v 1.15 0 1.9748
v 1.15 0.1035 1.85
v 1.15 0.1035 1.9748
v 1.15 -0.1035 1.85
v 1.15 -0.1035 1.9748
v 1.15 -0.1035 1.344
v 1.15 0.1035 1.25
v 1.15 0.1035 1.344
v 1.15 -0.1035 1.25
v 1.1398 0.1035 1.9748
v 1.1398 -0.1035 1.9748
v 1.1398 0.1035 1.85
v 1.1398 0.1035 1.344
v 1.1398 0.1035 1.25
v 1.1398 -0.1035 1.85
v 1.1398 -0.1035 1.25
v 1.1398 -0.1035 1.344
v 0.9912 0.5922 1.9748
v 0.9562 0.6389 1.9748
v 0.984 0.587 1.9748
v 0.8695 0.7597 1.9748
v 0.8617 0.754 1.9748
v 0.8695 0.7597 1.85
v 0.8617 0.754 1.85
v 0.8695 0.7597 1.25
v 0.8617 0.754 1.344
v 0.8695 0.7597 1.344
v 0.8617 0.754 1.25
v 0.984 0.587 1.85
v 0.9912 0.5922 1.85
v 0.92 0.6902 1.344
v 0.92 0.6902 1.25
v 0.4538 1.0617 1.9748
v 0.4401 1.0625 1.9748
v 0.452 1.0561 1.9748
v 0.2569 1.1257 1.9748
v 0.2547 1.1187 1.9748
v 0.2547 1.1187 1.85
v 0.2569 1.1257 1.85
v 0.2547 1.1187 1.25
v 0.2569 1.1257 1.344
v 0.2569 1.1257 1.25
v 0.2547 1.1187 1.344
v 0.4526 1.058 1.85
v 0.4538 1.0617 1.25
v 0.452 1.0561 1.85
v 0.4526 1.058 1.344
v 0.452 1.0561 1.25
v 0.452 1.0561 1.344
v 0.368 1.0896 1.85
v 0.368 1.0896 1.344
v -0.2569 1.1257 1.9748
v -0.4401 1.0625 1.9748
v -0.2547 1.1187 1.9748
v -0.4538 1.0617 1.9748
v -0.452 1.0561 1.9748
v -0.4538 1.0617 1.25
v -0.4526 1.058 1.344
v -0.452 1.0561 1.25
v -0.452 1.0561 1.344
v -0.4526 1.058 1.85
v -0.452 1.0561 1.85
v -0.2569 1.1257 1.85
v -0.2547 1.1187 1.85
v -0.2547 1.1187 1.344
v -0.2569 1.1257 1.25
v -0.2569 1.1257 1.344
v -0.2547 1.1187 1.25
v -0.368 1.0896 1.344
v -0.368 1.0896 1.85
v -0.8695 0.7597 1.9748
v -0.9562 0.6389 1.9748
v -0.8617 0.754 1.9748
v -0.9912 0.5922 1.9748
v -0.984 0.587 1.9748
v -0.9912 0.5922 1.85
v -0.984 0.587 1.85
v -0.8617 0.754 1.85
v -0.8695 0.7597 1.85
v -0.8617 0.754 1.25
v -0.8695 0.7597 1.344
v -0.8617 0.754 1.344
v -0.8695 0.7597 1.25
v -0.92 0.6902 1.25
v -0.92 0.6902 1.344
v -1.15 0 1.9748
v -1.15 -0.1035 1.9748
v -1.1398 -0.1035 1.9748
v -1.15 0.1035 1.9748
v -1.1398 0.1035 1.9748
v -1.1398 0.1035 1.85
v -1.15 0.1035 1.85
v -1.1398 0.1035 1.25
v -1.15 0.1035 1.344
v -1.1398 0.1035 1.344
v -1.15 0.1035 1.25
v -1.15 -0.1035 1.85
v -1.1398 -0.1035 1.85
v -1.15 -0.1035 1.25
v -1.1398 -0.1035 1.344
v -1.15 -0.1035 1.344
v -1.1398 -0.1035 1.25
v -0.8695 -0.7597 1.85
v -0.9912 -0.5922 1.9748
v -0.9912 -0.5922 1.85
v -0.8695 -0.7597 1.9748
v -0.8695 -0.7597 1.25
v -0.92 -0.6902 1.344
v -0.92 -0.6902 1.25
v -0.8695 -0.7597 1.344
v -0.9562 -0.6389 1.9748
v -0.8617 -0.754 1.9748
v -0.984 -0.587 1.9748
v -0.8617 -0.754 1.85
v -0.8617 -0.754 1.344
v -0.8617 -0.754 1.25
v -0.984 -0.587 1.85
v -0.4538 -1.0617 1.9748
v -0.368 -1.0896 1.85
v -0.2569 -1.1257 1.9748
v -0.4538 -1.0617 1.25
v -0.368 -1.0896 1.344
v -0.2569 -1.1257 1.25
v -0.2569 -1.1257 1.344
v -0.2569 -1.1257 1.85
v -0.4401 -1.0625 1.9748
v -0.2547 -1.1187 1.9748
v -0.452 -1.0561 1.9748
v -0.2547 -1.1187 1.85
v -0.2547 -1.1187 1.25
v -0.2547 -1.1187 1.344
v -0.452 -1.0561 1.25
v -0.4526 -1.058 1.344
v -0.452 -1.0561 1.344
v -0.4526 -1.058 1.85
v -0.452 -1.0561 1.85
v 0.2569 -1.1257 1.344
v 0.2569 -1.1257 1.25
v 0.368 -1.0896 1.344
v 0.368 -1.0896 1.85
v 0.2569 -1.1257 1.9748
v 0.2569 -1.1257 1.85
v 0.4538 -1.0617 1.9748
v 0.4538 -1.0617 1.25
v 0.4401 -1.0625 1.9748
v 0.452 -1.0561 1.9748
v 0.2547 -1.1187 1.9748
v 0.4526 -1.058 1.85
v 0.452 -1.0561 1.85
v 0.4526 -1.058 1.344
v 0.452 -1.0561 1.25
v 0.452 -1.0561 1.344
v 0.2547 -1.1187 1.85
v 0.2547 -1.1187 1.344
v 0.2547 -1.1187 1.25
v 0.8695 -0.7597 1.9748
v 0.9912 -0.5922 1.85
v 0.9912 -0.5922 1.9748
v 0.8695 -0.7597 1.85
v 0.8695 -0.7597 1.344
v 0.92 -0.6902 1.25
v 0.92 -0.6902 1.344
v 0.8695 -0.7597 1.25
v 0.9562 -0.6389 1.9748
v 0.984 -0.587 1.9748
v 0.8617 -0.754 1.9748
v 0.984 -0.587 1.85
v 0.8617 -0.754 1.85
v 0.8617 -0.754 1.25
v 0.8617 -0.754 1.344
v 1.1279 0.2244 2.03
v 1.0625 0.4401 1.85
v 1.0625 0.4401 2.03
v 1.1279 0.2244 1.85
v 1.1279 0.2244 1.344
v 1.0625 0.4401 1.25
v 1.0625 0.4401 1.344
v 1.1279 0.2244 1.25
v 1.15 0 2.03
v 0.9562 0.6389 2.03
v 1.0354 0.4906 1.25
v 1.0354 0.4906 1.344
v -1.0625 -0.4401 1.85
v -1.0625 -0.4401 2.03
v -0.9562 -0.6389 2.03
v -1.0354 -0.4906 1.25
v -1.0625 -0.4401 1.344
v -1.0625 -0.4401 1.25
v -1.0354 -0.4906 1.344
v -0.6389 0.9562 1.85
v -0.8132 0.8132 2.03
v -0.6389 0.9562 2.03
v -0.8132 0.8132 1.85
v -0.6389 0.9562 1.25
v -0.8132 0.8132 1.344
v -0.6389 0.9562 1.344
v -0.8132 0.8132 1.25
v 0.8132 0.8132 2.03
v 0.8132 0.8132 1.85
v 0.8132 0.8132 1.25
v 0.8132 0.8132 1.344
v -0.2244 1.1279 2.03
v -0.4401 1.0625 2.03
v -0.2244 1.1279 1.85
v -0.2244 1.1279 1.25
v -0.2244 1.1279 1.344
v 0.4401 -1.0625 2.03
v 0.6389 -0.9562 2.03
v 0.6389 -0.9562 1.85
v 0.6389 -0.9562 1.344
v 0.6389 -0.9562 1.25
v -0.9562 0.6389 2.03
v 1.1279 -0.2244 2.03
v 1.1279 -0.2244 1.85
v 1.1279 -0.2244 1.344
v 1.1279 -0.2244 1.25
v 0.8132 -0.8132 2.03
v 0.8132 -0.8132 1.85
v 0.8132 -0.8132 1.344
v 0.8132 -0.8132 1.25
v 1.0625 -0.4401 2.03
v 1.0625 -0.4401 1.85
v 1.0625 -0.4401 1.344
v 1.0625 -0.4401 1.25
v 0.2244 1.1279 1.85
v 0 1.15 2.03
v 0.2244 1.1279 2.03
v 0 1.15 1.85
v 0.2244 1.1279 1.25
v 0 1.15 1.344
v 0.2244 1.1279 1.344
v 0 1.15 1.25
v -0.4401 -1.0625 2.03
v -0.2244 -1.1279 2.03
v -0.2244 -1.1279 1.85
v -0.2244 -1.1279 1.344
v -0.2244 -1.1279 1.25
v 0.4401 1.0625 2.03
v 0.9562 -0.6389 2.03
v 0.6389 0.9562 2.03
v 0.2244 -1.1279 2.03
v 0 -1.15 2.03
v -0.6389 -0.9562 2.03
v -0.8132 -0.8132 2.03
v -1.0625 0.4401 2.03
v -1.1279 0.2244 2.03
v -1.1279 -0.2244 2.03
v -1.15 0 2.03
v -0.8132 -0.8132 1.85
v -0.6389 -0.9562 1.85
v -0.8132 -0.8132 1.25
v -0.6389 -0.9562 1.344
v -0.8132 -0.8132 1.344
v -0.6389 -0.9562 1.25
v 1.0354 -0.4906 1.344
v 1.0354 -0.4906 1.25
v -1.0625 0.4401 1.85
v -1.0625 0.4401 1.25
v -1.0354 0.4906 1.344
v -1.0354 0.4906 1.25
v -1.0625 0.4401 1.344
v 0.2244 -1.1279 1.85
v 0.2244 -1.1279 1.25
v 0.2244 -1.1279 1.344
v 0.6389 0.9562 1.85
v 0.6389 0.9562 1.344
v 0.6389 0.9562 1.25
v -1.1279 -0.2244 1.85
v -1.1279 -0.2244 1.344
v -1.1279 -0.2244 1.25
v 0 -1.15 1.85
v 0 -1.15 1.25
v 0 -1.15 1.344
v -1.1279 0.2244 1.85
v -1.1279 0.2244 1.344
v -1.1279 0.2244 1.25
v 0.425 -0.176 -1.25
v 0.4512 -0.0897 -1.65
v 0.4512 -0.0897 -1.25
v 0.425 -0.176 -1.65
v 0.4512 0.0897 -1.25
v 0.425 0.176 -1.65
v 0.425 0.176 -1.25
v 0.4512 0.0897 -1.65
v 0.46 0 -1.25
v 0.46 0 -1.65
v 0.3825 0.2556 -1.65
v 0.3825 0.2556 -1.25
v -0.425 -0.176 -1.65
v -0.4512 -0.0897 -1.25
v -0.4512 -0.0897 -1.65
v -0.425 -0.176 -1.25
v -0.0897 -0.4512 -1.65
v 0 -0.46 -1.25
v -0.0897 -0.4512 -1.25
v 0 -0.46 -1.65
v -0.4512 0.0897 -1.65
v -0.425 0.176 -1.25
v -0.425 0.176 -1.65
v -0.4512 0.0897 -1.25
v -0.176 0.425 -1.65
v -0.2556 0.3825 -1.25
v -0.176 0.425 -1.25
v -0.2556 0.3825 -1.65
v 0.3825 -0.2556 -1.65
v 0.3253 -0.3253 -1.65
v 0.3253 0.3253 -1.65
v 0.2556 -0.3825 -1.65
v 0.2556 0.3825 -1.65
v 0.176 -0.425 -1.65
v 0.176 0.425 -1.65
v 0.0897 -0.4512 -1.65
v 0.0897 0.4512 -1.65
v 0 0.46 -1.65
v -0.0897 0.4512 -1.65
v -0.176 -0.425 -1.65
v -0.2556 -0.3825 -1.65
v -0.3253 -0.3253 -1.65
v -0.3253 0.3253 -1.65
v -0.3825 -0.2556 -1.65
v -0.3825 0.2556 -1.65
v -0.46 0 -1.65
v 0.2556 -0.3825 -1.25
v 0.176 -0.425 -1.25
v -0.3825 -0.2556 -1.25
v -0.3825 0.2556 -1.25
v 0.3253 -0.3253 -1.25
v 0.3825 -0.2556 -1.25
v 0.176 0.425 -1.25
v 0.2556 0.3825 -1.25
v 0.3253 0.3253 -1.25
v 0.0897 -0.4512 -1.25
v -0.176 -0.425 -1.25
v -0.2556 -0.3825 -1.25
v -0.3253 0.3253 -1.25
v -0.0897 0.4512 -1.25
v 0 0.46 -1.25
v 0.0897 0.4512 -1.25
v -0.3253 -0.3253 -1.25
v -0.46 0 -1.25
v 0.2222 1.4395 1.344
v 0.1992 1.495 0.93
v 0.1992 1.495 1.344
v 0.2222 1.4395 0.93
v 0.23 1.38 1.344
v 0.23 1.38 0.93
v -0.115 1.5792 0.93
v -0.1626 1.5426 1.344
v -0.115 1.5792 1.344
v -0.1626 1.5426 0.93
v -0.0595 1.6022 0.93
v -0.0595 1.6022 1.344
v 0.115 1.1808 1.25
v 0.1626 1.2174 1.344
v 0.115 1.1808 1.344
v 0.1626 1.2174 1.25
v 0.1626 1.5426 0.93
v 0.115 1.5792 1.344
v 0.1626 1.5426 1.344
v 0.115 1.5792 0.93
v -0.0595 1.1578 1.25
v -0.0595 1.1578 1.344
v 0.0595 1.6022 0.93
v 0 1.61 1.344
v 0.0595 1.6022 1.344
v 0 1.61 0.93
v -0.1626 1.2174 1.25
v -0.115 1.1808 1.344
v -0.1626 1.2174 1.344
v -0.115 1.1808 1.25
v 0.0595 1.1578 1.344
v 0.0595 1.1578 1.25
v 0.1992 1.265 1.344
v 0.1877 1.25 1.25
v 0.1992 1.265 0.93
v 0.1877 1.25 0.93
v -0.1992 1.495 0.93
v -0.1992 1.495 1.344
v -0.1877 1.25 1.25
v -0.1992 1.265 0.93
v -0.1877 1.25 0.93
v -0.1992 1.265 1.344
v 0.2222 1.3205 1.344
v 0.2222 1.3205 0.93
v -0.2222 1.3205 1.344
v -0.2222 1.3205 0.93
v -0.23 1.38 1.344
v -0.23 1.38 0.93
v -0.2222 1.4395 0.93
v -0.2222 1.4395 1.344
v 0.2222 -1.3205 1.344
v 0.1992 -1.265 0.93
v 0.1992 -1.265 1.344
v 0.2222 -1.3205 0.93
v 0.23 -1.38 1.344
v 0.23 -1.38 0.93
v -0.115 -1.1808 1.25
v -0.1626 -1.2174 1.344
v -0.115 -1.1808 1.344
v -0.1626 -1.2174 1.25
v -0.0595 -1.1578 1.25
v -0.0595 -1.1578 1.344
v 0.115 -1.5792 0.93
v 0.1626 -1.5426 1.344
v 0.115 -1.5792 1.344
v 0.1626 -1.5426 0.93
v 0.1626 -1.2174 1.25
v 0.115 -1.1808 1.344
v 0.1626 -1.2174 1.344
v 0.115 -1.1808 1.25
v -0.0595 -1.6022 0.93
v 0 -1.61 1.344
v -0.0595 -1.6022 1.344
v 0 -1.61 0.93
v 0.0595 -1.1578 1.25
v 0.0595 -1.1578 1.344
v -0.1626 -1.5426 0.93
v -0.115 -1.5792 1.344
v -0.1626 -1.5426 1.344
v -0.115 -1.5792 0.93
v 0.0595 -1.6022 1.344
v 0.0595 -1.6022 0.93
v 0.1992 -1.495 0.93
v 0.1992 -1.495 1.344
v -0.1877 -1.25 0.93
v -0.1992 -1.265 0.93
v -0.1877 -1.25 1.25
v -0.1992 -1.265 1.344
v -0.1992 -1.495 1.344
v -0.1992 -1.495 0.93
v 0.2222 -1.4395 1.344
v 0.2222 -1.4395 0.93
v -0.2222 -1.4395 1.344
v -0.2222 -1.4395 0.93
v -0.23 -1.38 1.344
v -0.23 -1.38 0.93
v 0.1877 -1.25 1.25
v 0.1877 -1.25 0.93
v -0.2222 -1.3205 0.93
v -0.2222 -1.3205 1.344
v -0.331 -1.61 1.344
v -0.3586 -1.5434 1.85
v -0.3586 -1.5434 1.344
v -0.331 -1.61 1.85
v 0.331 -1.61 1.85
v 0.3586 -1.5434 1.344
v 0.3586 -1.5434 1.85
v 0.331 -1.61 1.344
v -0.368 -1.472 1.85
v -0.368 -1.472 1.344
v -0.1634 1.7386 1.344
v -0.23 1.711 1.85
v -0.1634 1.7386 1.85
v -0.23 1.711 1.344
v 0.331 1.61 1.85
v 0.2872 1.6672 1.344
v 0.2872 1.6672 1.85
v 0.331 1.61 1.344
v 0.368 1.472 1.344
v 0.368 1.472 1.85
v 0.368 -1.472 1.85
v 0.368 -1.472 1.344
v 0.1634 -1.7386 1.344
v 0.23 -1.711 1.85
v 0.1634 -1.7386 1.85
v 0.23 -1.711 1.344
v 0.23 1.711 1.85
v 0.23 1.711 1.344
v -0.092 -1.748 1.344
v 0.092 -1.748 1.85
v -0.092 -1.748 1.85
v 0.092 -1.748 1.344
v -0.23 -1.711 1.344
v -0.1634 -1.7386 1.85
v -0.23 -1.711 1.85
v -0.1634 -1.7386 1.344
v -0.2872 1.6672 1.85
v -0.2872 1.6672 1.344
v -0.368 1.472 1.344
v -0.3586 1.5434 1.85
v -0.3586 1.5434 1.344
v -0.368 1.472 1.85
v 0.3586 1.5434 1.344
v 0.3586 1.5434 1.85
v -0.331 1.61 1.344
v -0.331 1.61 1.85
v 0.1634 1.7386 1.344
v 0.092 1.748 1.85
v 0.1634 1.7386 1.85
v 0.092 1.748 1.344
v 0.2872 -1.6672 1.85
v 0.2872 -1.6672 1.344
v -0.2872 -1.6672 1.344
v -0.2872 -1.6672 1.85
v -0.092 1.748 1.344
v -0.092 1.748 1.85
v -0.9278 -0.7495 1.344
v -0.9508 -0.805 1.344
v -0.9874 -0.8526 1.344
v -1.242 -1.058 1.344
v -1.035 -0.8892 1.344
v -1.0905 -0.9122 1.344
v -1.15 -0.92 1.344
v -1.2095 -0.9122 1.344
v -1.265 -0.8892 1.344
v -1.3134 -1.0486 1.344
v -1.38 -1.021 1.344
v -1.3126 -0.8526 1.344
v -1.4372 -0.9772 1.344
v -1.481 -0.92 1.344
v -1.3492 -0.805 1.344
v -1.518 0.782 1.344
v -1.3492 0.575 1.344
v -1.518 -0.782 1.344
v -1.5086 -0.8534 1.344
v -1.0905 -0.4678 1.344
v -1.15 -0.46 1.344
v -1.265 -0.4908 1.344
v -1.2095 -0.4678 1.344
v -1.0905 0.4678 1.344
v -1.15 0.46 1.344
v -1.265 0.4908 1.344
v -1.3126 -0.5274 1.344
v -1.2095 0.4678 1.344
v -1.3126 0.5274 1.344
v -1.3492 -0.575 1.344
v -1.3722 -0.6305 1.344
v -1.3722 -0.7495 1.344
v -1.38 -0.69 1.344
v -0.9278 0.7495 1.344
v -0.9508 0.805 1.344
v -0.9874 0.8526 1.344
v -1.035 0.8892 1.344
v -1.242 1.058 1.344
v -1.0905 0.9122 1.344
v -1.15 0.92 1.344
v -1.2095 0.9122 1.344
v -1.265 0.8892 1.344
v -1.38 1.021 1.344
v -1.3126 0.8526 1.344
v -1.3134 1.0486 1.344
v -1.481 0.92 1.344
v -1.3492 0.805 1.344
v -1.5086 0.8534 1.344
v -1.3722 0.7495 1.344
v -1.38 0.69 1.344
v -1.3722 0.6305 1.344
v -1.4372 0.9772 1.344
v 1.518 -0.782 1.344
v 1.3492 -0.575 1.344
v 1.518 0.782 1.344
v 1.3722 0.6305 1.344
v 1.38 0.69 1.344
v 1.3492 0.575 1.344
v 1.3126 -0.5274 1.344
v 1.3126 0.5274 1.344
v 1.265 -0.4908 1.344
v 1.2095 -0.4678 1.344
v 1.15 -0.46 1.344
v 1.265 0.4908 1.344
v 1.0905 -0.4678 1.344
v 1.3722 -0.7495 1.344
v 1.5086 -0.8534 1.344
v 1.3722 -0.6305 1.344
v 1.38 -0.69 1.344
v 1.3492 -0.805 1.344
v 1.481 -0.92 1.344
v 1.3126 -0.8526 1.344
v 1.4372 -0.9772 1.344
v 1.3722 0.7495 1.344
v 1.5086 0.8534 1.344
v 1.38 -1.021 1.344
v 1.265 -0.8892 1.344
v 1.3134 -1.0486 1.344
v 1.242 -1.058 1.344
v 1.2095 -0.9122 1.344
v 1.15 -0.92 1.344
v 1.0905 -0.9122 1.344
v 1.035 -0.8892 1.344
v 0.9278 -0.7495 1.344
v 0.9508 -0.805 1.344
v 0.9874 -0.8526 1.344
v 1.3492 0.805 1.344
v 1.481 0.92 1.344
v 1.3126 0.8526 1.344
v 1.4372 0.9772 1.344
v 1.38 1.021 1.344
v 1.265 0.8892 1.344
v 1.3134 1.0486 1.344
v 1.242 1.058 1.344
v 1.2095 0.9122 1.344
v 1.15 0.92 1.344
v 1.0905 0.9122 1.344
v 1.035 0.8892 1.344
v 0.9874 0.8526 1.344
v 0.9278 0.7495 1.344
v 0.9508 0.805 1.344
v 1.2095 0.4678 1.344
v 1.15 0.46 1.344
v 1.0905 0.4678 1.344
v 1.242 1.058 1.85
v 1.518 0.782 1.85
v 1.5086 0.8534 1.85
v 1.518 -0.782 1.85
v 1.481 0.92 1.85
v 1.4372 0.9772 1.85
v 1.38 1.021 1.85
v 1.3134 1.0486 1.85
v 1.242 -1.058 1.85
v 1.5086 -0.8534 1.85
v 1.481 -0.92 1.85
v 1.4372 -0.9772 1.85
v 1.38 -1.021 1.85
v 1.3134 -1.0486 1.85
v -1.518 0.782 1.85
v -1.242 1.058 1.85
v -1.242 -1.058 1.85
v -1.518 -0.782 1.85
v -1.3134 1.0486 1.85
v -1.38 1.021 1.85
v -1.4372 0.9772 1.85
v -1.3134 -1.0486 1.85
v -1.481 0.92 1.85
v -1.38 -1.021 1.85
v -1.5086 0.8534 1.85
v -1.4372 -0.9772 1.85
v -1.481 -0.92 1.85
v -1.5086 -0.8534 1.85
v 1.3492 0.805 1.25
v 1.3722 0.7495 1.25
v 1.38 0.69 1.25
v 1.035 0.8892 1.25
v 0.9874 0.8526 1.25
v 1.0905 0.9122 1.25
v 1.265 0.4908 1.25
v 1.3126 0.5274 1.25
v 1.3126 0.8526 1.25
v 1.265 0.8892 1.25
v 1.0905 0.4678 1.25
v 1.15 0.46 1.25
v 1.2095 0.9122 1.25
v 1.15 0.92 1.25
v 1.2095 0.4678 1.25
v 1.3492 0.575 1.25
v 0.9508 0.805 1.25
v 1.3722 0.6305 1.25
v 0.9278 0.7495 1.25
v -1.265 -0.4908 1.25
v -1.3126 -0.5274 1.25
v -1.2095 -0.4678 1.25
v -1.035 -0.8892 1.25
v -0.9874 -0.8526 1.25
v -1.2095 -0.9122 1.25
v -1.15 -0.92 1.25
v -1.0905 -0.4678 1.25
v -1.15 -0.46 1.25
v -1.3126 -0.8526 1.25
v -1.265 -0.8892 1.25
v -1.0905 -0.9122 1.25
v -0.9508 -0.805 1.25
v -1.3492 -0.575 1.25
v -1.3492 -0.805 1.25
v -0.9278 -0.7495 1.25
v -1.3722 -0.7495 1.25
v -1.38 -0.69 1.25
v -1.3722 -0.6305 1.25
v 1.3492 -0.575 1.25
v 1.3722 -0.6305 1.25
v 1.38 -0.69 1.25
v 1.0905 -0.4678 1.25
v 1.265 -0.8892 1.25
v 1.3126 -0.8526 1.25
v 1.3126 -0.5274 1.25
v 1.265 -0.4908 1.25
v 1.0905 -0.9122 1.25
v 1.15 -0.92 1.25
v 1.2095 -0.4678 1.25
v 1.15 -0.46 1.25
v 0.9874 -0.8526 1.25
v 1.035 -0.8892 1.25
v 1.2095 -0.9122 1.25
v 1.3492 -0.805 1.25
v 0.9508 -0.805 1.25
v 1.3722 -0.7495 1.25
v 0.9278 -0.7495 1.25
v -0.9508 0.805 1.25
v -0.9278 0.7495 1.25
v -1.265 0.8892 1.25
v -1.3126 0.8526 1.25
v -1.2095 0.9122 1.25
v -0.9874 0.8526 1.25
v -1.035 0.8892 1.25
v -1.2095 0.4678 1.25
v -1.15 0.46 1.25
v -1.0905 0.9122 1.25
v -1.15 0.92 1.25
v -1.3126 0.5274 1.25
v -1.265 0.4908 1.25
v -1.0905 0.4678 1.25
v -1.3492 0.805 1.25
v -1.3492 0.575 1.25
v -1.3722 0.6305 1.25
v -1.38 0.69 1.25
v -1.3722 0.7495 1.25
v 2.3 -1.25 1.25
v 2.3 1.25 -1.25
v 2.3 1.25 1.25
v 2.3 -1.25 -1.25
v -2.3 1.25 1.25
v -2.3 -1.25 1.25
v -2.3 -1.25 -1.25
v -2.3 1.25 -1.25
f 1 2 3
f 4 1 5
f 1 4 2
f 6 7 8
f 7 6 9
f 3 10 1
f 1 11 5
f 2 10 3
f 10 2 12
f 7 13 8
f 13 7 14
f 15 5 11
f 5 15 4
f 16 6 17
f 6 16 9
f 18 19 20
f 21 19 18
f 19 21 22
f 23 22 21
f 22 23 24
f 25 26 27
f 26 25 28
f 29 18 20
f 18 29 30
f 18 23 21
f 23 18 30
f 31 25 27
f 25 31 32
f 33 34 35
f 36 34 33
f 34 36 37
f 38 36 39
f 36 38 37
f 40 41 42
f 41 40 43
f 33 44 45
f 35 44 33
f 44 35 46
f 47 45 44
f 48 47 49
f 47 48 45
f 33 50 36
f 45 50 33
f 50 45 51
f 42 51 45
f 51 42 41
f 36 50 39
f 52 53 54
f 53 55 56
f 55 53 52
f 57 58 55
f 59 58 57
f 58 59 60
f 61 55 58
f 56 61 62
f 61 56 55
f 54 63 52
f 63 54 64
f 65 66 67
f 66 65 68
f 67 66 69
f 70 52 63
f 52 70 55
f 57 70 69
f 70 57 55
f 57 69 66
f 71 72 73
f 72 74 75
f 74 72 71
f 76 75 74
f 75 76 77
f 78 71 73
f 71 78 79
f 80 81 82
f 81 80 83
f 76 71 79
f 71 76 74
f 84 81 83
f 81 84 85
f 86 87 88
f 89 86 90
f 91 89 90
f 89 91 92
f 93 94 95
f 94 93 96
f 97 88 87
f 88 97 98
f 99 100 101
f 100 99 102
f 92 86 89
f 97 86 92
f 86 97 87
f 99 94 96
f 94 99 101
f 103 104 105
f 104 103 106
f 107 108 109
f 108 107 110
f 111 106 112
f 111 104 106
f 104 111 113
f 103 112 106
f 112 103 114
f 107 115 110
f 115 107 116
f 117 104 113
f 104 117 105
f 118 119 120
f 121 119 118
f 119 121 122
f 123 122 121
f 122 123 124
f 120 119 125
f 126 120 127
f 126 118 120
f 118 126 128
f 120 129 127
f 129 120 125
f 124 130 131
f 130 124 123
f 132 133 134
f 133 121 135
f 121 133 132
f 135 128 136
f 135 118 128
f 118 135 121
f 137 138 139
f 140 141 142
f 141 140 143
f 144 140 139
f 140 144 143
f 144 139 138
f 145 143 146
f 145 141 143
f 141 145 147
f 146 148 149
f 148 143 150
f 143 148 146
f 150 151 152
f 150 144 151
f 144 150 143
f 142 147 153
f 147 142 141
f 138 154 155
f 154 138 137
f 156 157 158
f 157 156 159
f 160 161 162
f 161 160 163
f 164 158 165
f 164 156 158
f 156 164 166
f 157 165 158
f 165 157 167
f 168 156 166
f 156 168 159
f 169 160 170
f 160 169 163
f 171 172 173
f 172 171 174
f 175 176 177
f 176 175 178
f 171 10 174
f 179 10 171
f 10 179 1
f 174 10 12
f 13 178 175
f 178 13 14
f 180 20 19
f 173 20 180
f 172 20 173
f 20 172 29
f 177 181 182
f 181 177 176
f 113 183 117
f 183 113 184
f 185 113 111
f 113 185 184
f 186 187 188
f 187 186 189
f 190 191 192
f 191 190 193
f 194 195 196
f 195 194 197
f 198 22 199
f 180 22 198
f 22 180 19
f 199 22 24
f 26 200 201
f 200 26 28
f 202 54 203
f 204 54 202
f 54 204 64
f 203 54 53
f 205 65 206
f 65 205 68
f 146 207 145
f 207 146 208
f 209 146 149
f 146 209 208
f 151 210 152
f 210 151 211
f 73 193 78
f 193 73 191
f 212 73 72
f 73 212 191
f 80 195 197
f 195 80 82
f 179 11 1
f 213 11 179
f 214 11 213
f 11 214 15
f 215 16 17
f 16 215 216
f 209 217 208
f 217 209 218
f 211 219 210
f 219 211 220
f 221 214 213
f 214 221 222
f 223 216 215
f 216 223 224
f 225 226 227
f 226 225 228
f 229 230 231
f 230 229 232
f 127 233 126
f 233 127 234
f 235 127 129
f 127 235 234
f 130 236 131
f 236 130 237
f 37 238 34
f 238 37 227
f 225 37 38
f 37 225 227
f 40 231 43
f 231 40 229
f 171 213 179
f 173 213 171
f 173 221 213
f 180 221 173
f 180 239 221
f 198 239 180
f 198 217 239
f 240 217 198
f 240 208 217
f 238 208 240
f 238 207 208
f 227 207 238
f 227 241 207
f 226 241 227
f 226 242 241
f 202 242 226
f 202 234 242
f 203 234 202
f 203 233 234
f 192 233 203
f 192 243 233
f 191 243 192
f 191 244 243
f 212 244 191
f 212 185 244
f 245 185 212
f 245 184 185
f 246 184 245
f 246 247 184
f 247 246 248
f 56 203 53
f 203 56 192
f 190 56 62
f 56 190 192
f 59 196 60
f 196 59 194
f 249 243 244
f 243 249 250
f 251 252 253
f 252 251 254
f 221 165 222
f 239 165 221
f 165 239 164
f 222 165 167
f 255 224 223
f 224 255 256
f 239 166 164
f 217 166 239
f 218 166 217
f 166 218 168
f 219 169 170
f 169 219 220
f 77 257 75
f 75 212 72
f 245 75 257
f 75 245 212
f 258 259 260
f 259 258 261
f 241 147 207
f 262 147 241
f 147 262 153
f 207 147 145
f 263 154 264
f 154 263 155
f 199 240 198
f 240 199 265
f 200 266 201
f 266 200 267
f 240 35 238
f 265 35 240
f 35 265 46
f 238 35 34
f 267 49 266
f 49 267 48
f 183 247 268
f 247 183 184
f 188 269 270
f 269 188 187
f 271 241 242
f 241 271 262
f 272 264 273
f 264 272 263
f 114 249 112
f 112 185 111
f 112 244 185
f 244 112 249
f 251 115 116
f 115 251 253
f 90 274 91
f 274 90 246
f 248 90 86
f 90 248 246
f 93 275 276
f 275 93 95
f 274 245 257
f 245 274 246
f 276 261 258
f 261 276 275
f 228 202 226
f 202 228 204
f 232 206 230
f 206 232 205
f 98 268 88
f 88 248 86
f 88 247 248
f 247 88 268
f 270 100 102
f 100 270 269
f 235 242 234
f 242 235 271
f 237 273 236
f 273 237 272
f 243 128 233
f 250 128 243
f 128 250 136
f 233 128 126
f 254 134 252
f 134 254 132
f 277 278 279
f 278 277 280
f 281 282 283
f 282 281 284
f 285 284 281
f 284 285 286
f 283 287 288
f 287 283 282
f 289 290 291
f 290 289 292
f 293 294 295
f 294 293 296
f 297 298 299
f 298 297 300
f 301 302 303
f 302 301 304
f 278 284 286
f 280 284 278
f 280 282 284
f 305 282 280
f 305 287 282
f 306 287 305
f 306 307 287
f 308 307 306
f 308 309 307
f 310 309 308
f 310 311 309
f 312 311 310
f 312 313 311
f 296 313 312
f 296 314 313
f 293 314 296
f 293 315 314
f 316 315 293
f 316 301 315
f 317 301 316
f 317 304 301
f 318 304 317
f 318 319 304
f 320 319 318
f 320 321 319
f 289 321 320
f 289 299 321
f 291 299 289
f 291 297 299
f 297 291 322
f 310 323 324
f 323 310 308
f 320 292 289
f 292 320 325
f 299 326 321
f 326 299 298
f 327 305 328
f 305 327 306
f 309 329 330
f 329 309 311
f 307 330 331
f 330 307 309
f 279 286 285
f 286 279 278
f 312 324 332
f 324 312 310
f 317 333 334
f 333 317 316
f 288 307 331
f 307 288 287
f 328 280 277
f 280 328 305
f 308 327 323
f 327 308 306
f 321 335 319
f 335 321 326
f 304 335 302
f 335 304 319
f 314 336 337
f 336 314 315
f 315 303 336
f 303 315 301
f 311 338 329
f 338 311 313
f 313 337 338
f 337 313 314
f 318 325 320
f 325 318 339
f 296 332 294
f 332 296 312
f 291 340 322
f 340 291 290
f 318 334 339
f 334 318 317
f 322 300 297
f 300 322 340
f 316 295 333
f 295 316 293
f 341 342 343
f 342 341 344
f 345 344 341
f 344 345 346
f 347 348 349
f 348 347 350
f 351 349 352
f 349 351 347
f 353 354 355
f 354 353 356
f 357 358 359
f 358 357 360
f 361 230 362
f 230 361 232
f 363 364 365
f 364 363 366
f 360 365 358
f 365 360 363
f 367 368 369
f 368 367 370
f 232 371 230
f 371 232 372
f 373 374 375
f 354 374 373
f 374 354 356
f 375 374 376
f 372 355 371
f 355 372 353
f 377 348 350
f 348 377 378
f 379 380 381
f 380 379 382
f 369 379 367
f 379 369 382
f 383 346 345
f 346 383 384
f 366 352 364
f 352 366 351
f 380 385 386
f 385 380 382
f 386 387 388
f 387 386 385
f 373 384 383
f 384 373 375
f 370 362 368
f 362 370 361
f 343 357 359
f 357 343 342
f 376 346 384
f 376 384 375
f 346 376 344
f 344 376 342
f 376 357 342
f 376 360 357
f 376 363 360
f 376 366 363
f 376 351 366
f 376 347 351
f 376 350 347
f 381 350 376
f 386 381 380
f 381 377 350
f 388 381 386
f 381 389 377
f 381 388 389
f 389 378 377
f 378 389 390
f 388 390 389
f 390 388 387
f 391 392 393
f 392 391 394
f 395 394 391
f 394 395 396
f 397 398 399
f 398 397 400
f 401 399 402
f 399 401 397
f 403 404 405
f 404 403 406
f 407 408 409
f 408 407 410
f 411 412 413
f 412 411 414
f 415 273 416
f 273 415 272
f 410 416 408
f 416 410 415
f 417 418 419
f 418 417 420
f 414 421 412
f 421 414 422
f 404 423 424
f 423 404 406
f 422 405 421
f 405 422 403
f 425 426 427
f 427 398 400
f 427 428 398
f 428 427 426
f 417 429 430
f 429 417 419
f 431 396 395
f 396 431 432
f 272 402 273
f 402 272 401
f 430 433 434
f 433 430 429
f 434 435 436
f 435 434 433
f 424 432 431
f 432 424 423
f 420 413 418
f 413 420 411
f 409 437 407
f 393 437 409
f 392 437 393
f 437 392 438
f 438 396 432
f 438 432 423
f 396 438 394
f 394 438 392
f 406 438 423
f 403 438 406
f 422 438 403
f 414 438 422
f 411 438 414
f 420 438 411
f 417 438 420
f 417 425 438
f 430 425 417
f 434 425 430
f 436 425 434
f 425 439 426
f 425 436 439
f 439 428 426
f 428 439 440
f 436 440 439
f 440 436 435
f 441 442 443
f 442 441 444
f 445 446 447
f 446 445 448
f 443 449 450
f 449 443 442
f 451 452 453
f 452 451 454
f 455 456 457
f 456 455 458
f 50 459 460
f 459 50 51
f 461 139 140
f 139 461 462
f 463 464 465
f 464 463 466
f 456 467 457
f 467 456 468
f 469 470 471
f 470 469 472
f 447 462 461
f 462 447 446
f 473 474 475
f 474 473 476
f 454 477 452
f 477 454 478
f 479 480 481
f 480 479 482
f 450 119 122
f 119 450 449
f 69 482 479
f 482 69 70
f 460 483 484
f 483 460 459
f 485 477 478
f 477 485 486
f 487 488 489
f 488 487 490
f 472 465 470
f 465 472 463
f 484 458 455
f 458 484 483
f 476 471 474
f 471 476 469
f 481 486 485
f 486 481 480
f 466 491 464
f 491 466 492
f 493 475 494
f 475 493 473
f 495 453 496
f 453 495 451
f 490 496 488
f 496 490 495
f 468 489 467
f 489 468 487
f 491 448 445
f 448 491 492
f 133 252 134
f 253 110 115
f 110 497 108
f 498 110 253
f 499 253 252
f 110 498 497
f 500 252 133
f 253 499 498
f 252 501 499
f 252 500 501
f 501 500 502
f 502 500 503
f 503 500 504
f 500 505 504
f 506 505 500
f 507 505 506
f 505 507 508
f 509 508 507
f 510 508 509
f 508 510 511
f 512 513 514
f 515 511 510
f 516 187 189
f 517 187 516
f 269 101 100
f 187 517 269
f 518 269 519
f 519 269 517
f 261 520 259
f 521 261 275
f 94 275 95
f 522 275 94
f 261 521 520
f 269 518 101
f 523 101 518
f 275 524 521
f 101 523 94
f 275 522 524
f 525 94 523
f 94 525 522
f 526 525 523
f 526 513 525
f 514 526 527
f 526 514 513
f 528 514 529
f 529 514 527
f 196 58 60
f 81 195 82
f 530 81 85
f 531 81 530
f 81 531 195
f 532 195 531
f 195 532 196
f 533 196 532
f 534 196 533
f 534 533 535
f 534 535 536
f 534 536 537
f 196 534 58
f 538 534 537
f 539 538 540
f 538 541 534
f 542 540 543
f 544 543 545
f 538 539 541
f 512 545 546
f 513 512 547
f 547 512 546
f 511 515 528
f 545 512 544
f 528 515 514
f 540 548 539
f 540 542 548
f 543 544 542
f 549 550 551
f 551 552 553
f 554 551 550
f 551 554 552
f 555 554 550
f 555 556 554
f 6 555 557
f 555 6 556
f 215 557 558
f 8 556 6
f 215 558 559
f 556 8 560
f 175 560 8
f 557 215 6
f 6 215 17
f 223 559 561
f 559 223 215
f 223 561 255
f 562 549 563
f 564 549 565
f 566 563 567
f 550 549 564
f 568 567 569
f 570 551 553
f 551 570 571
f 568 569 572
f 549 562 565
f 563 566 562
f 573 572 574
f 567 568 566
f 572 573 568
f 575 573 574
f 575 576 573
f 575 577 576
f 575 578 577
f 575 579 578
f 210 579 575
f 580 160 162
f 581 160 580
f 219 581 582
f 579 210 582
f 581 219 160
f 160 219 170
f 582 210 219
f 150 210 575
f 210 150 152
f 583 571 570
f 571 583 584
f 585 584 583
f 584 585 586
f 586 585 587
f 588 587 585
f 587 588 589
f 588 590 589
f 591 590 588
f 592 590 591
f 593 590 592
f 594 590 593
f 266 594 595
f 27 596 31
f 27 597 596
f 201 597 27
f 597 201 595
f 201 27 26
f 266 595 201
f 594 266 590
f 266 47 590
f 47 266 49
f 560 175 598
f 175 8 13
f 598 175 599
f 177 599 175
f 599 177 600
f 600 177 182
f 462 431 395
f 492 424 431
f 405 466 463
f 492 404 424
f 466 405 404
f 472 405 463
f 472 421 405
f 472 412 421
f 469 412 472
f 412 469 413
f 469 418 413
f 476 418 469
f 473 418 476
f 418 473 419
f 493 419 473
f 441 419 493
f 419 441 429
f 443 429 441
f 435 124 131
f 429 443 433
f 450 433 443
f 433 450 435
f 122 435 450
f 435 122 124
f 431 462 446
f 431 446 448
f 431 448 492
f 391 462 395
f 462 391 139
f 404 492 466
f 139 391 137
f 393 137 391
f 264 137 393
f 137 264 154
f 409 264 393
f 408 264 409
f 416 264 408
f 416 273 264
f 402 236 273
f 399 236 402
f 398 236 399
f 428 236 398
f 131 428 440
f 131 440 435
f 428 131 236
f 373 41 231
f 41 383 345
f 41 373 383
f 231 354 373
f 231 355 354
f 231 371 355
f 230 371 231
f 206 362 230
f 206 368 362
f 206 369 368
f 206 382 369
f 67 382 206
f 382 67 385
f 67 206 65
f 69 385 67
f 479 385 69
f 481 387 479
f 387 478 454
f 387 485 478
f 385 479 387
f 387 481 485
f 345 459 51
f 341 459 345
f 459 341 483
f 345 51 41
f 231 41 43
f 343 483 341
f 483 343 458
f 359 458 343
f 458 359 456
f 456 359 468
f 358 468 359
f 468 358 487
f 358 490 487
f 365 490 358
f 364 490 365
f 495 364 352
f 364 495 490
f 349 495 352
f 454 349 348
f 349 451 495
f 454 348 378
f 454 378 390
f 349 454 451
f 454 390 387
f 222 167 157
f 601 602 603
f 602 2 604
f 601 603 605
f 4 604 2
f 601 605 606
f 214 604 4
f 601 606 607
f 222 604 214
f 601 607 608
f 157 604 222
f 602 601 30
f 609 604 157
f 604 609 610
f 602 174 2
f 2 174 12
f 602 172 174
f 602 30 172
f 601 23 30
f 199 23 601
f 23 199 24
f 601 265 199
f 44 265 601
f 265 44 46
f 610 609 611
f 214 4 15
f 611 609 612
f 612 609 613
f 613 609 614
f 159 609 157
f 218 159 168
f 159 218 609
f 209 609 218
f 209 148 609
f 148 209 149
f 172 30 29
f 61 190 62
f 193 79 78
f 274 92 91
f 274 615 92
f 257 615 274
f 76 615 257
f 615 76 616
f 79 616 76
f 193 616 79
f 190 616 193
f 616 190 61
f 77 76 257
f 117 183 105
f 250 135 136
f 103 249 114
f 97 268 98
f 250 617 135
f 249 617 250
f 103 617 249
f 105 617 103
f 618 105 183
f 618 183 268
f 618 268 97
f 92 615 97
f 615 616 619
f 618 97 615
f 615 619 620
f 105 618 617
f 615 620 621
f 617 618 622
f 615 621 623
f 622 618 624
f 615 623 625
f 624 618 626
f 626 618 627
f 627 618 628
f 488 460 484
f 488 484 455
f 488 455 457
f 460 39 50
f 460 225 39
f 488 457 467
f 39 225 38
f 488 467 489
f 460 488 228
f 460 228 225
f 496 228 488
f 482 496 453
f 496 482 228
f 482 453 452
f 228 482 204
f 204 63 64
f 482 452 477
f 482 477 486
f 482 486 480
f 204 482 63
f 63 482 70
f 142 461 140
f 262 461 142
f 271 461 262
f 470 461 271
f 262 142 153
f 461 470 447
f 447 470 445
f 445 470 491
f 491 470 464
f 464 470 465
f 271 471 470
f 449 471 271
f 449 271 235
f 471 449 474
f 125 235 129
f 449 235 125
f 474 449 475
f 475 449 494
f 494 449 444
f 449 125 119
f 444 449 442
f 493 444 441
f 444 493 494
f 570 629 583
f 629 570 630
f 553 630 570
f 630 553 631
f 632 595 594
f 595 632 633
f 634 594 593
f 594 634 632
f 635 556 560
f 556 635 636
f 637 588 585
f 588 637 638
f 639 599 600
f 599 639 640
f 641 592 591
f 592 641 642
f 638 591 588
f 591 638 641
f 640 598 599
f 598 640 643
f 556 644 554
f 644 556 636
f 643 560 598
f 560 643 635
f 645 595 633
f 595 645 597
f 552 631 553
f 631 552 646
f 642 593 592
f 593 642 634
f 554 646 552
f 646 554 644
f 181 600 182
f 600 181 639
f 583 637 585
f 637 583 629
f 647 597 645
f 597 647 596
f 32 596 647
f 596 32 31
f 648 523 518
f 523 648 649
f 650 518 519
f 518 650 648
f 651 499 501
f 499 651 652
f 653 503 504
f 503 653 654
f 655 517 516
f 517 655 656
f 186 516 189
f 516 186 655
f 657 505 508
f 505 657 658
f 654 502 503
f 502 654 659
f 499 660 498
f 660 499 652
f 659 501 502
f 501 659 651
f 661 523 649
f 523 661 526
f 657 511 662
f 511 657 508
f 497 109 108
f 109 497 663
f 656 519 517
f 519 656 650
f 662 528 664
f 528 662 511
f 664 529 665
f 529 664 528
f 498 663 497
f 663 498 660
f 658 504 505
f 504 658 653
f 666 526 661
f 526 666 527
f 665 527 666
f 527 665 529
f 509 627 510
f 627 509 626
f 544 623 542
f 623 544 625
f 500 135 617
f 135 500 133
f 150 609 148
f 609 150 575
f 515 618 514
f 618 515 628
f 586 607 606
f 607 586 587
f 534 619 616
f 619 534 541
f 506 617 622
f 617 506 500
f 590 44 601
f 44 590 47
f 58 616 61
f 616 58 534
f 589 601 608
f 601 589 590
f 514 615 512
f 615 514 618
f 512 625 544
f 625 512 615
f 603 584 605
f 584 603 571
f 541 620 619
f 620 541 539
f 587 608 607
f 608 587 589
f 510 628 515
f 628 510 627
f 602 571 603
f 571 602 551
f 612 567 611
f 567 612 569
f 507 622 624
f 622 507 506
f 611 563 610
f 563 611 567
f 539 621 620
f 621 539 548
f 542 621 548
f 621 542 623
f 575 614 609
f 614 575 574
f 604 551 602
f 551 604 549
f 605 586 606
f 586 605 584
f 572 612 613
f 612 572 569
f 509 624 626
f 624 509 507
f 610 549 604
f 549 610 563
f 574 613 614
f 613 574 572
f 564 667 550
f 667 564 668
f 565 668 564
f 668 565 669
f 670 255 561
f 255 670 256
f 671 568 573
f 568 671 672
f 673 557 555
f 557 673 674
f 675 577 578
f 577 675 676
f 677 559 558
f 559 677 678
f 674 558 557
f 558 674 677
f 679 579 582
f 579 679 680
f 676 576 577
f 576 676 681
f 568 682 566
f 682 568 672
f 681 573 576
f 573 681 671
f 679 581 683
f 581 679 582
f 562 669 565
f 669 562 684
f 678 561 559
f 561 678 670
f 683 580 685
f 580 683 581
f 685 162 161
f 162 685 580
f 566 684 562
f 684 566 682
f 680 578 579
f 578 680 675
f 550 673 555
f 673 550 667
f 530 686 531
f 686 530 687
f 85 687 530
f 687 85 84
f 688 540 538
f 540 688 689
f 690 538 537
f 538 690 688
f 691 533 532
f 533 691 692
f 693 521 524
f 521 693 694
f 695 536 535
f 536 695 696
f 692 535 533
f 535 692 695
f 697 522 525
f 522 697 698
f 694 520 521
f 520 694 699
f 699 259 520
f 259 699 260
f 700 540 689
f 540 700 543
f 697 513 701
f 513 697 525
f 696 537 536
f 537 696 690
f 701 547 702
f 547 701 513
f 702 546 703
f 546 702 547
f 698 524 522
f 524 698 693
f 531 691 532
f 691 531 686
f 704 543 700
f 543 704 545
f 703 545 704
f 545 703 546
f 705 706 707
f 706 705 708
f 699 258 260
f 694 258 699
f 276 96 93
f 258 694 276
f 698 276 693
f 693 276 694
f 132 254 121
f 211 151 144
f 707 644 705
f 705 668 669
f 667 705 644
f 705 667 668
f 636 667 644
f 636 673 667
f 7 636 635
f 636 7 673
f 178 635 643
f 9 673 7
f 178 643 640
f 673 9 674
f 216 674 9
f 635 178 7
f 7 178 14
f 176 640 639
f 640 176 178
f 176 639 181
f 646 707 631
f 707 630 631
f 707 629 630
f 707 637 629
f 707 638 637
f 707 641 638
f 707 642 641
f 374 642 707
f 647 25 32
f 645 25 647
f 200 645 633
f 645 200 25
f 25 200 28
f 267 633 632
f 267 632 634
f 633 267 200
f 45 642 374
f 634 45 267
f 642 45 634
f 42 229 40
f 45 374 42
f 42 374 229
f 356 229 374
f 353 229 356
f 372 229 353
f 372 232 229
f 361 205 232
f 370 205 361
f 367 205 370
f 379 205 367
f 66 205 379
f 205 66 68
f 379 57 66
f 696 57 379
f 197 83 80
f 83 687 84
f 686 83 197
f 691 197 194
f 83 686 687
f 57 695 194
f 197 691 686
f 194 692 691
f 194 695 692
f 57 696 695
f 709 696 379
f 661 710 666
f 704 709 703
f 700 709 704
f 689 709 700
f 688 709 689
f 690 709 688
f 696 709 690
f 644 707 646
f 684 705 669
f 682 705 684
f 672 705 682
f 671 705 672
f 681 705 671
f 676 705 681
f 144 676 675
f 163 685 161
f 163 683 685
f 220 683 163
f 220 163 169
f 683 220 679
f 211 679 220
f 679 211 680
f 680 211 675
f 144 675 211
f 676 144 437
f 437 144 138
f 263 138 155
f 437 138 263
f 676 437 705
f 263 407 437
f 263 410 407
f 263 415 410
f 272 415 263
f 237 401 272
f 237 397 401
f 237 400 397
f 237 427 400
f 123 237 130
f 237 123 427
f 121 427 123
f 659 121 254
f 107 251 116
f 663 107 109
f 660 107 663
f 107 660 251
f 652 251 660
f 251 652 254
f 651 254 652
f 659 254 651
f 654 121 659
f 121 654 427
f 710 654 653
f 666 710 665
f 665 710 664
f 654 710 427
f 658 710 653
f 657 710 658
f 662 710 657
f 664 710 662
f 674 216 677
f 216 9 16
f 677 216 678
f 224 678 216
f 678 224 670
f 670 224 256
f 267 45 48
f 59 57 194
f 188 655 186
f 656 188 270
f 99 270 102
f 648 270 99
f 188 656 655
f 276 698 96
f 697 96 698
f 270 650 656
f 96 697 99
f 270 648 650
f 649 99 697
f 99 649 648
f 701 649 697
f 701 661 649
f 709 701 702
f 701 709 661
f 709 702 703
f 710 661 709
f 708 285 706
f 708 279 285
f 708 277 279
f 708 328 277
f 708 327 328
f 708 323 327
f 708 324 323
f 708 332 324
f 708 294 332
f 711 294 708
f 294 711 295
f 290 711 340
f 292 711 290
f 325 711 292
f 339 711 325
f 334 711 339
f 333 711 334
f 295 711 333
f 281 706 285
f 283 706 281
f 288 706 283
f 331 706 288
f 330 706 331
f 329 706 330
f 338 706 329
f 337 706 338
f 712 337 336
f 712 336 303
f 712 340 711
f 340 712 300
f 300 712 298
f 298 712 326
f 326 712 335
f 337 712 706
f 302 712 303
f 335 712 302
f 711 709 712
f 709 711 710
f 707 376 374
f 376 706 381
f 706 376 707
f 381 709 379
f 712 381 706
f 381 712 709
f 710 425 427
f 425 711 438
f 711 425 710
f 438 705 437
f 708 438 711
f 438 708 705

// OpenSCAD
// Parameters (mm)
primary_dimension = 4.6; //[2.3:9.2:0.1]
body_width        = 4.6; //[2.3:9.2:0.1]
body_thickness    = 2.5; //[1.25:5:0.1]
body_length       = 2.5; //[1.25:5:0.1]
overlap           = 0.6; //[0.3:1.2:0.1]

knob_radius  = 1.15; //[0.6:2.3:0.05]
knob_height  = 1.38; //[0.7:2.8:0.05]
screw_radius = 0.46; //[0.25:0.9:0.01]
screw_length = 3.68; //[1.8:7.4:0.1]

marker_radius = 0.23; //[0.12:0.46:0.01]
marker_height = 0.92; //[0.4:1.8:0.02]
marker_pitch  = 1.38; //[0.7:2.8:0.02]

// Global quality
$fn=32;

// ---------- Helpers ----------
module hex_prism(flat_d=2, h=1, center=false) {
  // flat_d is across flats
  r = flat_d / (2*cos(30));
  cylinder(r=r, h=h, center=center, $fn=6);
}

module rounded_rect_2d(w, h, r) {
  rr = min(r, min(w, h)/2);
  hull() {
    translate([ w/2-rr,  h/2-rr]) circle(r=rr, $fn=24);
    translate([-w/2+rr,  h/2-rr]) circle(r=rr, $fn=24);
    translate([ w/2-rr, -h/2+rr]) circle(r=rr, $fn=24);
    translate([-w/2+rr, -h/2+rr]) circle(r=rr, $fn=24);
  }
}

module marker_pin(r=marker_radius, h=marker_height) {
  // Small "hole position marker" with a tiny head so it reads as a marker, not just a cylinder
  union() {
    cylinder(r=r, h=h, center=true, $fn=24);
    translate([0,0,h/2 - min(0.18, h*0.25)]) cylinder(r=r*1.35, h=min(0.18, h*0.25), center=false, $fn=24);
  }
}

// ---------- Base shapes from plan ----------
module component_body() {
  // Encapsulated body
  color([0.15, 0.15, 0.17])  // black plastic
    cube([body_width, body_length, body_thickness], center=true);
}

// [MANDATORY] Screw Knob Assembly (detailed)
module screw_knob_assembly() {
  // Positions from plan
  knob_z  = body_thickness/2 + knob_height/2 - overlap;
  screw_z = body_thickness/2 + knob_height - overlap - screw_length/2;

  // Detail parameters (kept minimal but recognizable)
  knob_r = knob_radius;
  knob_h = knob_height;

  // Knurling ribs
  rib_count = 10;
  rib_w = max(0.18, knob_r*0.18);
  rib_d = max(0.18, knob_r*0.22);

  // Screw details
  shank_r = screw_radius;
  head_h  = max(0.35, shank_r*1.2);
  head_r  = max(shank_r*1.9, shank_r + 0.35);
  tip_h   = max(0.35, shank_r*1.2);

  color([0.2, 0.2, 0.22])  // dark knob
  union() {
    // Knob body with simple knurl ribs
    translate([0,0,knob_z])
    union() {
      // main knob cylinder
      cylinder(r=knob_r, h=knob_h, center=true, $fn=32);

      // top chamfer ring (visual)
      translate([0,0,knob_h/2 - min(0.25, knob_h*0.25)])
        cylinder(r1=knob_r, r2=knob_r*0.88, h=min(0.25, knob_h*0.25), center=false, $fn=32);

      // knurl ribs around perimeter
      for (i=[0:rib_count-1]) {
        rotate([0,0,i*360/rib_count])
          translate([knob_r - rib_d/2, 0, 0])
            cube([rib_d, rib_w, knob_h*0.92], center=true);
      }

      // central boss (suggests insert)
      cylinder(r=knob_r*0.35, h=knob_h*0.75, center=true, $fn=32);
    }

    // Screw: metal shank + head + tip (passes through body)
    color([0.75, 0.75, 0.77])  // silver metal
    translate([0,0,screw_z])
    union() {
      // shank
      cylinder(r=shank_r, h=screw_length, center=true, $fn=32);

      // head near top (inside knob region)
      translate([0,0,screw_length/2 - head_h])
      difference() {
        cylinder(r=head_r, h=head_h, center=false, $fn=32);
        // simple slot
        translate([0,0,head_h*0.55])
          cube([head_r*1.7, max(0.18, shank_r*0.7), head_h*1.2], center=true);
      }

      // pointed tip at bottom
      translate([0,0,-screw_length/2])
        cylinder(r1=shank_r, r2=0.05, h=tip_h, center=false, $fn=32);
    }
  }
}

// [MANDATORY] Rail Hole Positions (detailed markers)
module rail_hole_positions() {
  // Base marker position from plan
  base_z = body_thickness/2 - marker_height/2 + overlap;

  color([0.85, 0.85, 0.8])  // light marker color
  union() {
    // center marker (as in plan's union target with itself)
    translate([0,0,base_z]) marker_pin();

    // shifted markers (± marker_pitch in Y)
    translate([0, marker_pitch, 0]) translate([0,0,base_z]) marker_pin();
    translate([0,-marker_pitch, 0]) translate([0,0,base_z]) marker_pin();

    // Small connecting web to guarantee connectivity (assembly rule: no floating parts)
    // Connects markers to body top surface region
    web_t = max(0.25, marker_radius*2.2);
    translate([0,0, body_thickness/2 - web_t/2 + overlap])
      linear_extrude(height=web_t, center=true)
        rounded_rect_2d(w=marker_radius*3.2, h=marker_pitch*2 + marker_radius*3.2, r=marker_radius*1.2);
  }
}

// [MANDATORY] Ttrack Hole Positions (detailed markers)
module ttrack_hole_positions() {
  base_z = body_thickness/2 - marker_height/2 + overlap;

  color([0.85, 0.85, 0.8])
  union() {
    // center marker (as in plan's union target with itself)
    translate([0,0,base_z]) marker_pin();

    // shifted markers: (+body_width/4, +marker_pitch/2) and (-body_width/4, -marker_pitch/2)
    translate([ body_width/4,  marker_pitch/2, 0]) translate([0,0,base_z]) marker_pin();
    translate([-body_width/4, -marker_pitch/2, 0]) translate([0,0,base_z]) marker_pin();

    // connectivity web
    web_t = max(0.25, marker_radius*2.2);
    translate([0,0, body_thickness/2 - web_t/2 + overlap])
      linear_extrude(height=web_t, center=true)
        rounded_rect_2d(w=body_width/2 + marker_radius*3.2, h=marker_pitch + marker_radius*3.2, r=marker_radius*1.2);
  }
}

// [MANDATORY] Ttrack Insert Hole Positions (detailed markers)
module ttrack_insert_hole_positions() {
  base_z = body_thickness/2 - marker_height/2 + overlap;

  color([0.85, 0.85, 0.8])
  union() {
    // center marker (as in plan's union target with itself)
    translate([0,0,base_z]) marker_pin();

    // shifted markers: (+body_width/4, -marker_pitch/2) and (-body_width/4, +marker_pitch/2)
    translate([ body_width/4, -marker_pitch/2, 0]) translate([0,0,base_z]) marker_pin();
    translate([-body_width/4,  marker_pitch/2, 0]) translate([0,0,base_z]) marker_pin();

    // connectivity web
    web_t = max(0.25, marker_radius*2.2);
    translate([0,0, body_thickness/2 - web_t/2 + overlap])
      linear_extrude(height=web_t, center=true)
        rounded_rect_2d(w=body_width/2 + marker_radius*3.2, h=marker_pitch + marker_radius*3.2, r=marker_radius*1.2);
  }
}

// ---------- Final assembly ----------
module assembly() {
  union() {
    component_body();
    screw_knob_assembly();
    rail_hole_positions();
    ttrack_hole_positions();
    ttrack_insert_hole_positions();
  }
}

assembly();
